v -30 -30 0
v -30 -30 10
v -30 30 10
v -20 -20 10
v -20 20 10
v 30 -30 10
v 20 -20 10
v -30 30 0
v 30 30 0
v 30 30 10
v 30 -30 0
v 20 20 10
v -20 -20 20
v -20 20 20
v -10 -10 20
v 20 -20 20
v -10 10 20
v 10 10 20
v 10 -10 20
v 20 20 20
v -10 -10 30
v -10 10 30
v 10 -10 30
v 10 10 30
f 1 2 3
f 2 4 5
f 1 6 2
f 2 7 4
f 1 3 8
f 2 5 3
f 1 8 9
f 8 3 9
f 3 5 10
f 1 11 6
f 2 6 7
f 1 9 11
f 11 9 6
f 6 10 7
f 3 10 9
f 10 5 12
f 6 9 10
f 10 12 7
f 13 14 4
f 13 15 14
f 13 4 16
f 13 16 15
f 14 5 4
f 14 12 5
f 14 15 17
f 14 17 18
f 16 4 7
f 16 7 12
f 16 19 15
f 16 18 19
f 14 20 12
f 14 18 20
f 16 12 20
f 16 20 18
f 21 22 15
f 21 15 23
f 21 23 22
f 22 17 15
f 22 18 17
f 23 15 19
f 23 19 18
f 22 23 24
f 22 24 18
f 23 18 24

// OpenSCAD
translate([0, 0, 5])  cube([60, 60, 10], center=true);
translate([0, 0, 15]) cube([40, 40, 10], center=true);
translate([0, 0, 25]) cube([20, 20, 10], center=true);
